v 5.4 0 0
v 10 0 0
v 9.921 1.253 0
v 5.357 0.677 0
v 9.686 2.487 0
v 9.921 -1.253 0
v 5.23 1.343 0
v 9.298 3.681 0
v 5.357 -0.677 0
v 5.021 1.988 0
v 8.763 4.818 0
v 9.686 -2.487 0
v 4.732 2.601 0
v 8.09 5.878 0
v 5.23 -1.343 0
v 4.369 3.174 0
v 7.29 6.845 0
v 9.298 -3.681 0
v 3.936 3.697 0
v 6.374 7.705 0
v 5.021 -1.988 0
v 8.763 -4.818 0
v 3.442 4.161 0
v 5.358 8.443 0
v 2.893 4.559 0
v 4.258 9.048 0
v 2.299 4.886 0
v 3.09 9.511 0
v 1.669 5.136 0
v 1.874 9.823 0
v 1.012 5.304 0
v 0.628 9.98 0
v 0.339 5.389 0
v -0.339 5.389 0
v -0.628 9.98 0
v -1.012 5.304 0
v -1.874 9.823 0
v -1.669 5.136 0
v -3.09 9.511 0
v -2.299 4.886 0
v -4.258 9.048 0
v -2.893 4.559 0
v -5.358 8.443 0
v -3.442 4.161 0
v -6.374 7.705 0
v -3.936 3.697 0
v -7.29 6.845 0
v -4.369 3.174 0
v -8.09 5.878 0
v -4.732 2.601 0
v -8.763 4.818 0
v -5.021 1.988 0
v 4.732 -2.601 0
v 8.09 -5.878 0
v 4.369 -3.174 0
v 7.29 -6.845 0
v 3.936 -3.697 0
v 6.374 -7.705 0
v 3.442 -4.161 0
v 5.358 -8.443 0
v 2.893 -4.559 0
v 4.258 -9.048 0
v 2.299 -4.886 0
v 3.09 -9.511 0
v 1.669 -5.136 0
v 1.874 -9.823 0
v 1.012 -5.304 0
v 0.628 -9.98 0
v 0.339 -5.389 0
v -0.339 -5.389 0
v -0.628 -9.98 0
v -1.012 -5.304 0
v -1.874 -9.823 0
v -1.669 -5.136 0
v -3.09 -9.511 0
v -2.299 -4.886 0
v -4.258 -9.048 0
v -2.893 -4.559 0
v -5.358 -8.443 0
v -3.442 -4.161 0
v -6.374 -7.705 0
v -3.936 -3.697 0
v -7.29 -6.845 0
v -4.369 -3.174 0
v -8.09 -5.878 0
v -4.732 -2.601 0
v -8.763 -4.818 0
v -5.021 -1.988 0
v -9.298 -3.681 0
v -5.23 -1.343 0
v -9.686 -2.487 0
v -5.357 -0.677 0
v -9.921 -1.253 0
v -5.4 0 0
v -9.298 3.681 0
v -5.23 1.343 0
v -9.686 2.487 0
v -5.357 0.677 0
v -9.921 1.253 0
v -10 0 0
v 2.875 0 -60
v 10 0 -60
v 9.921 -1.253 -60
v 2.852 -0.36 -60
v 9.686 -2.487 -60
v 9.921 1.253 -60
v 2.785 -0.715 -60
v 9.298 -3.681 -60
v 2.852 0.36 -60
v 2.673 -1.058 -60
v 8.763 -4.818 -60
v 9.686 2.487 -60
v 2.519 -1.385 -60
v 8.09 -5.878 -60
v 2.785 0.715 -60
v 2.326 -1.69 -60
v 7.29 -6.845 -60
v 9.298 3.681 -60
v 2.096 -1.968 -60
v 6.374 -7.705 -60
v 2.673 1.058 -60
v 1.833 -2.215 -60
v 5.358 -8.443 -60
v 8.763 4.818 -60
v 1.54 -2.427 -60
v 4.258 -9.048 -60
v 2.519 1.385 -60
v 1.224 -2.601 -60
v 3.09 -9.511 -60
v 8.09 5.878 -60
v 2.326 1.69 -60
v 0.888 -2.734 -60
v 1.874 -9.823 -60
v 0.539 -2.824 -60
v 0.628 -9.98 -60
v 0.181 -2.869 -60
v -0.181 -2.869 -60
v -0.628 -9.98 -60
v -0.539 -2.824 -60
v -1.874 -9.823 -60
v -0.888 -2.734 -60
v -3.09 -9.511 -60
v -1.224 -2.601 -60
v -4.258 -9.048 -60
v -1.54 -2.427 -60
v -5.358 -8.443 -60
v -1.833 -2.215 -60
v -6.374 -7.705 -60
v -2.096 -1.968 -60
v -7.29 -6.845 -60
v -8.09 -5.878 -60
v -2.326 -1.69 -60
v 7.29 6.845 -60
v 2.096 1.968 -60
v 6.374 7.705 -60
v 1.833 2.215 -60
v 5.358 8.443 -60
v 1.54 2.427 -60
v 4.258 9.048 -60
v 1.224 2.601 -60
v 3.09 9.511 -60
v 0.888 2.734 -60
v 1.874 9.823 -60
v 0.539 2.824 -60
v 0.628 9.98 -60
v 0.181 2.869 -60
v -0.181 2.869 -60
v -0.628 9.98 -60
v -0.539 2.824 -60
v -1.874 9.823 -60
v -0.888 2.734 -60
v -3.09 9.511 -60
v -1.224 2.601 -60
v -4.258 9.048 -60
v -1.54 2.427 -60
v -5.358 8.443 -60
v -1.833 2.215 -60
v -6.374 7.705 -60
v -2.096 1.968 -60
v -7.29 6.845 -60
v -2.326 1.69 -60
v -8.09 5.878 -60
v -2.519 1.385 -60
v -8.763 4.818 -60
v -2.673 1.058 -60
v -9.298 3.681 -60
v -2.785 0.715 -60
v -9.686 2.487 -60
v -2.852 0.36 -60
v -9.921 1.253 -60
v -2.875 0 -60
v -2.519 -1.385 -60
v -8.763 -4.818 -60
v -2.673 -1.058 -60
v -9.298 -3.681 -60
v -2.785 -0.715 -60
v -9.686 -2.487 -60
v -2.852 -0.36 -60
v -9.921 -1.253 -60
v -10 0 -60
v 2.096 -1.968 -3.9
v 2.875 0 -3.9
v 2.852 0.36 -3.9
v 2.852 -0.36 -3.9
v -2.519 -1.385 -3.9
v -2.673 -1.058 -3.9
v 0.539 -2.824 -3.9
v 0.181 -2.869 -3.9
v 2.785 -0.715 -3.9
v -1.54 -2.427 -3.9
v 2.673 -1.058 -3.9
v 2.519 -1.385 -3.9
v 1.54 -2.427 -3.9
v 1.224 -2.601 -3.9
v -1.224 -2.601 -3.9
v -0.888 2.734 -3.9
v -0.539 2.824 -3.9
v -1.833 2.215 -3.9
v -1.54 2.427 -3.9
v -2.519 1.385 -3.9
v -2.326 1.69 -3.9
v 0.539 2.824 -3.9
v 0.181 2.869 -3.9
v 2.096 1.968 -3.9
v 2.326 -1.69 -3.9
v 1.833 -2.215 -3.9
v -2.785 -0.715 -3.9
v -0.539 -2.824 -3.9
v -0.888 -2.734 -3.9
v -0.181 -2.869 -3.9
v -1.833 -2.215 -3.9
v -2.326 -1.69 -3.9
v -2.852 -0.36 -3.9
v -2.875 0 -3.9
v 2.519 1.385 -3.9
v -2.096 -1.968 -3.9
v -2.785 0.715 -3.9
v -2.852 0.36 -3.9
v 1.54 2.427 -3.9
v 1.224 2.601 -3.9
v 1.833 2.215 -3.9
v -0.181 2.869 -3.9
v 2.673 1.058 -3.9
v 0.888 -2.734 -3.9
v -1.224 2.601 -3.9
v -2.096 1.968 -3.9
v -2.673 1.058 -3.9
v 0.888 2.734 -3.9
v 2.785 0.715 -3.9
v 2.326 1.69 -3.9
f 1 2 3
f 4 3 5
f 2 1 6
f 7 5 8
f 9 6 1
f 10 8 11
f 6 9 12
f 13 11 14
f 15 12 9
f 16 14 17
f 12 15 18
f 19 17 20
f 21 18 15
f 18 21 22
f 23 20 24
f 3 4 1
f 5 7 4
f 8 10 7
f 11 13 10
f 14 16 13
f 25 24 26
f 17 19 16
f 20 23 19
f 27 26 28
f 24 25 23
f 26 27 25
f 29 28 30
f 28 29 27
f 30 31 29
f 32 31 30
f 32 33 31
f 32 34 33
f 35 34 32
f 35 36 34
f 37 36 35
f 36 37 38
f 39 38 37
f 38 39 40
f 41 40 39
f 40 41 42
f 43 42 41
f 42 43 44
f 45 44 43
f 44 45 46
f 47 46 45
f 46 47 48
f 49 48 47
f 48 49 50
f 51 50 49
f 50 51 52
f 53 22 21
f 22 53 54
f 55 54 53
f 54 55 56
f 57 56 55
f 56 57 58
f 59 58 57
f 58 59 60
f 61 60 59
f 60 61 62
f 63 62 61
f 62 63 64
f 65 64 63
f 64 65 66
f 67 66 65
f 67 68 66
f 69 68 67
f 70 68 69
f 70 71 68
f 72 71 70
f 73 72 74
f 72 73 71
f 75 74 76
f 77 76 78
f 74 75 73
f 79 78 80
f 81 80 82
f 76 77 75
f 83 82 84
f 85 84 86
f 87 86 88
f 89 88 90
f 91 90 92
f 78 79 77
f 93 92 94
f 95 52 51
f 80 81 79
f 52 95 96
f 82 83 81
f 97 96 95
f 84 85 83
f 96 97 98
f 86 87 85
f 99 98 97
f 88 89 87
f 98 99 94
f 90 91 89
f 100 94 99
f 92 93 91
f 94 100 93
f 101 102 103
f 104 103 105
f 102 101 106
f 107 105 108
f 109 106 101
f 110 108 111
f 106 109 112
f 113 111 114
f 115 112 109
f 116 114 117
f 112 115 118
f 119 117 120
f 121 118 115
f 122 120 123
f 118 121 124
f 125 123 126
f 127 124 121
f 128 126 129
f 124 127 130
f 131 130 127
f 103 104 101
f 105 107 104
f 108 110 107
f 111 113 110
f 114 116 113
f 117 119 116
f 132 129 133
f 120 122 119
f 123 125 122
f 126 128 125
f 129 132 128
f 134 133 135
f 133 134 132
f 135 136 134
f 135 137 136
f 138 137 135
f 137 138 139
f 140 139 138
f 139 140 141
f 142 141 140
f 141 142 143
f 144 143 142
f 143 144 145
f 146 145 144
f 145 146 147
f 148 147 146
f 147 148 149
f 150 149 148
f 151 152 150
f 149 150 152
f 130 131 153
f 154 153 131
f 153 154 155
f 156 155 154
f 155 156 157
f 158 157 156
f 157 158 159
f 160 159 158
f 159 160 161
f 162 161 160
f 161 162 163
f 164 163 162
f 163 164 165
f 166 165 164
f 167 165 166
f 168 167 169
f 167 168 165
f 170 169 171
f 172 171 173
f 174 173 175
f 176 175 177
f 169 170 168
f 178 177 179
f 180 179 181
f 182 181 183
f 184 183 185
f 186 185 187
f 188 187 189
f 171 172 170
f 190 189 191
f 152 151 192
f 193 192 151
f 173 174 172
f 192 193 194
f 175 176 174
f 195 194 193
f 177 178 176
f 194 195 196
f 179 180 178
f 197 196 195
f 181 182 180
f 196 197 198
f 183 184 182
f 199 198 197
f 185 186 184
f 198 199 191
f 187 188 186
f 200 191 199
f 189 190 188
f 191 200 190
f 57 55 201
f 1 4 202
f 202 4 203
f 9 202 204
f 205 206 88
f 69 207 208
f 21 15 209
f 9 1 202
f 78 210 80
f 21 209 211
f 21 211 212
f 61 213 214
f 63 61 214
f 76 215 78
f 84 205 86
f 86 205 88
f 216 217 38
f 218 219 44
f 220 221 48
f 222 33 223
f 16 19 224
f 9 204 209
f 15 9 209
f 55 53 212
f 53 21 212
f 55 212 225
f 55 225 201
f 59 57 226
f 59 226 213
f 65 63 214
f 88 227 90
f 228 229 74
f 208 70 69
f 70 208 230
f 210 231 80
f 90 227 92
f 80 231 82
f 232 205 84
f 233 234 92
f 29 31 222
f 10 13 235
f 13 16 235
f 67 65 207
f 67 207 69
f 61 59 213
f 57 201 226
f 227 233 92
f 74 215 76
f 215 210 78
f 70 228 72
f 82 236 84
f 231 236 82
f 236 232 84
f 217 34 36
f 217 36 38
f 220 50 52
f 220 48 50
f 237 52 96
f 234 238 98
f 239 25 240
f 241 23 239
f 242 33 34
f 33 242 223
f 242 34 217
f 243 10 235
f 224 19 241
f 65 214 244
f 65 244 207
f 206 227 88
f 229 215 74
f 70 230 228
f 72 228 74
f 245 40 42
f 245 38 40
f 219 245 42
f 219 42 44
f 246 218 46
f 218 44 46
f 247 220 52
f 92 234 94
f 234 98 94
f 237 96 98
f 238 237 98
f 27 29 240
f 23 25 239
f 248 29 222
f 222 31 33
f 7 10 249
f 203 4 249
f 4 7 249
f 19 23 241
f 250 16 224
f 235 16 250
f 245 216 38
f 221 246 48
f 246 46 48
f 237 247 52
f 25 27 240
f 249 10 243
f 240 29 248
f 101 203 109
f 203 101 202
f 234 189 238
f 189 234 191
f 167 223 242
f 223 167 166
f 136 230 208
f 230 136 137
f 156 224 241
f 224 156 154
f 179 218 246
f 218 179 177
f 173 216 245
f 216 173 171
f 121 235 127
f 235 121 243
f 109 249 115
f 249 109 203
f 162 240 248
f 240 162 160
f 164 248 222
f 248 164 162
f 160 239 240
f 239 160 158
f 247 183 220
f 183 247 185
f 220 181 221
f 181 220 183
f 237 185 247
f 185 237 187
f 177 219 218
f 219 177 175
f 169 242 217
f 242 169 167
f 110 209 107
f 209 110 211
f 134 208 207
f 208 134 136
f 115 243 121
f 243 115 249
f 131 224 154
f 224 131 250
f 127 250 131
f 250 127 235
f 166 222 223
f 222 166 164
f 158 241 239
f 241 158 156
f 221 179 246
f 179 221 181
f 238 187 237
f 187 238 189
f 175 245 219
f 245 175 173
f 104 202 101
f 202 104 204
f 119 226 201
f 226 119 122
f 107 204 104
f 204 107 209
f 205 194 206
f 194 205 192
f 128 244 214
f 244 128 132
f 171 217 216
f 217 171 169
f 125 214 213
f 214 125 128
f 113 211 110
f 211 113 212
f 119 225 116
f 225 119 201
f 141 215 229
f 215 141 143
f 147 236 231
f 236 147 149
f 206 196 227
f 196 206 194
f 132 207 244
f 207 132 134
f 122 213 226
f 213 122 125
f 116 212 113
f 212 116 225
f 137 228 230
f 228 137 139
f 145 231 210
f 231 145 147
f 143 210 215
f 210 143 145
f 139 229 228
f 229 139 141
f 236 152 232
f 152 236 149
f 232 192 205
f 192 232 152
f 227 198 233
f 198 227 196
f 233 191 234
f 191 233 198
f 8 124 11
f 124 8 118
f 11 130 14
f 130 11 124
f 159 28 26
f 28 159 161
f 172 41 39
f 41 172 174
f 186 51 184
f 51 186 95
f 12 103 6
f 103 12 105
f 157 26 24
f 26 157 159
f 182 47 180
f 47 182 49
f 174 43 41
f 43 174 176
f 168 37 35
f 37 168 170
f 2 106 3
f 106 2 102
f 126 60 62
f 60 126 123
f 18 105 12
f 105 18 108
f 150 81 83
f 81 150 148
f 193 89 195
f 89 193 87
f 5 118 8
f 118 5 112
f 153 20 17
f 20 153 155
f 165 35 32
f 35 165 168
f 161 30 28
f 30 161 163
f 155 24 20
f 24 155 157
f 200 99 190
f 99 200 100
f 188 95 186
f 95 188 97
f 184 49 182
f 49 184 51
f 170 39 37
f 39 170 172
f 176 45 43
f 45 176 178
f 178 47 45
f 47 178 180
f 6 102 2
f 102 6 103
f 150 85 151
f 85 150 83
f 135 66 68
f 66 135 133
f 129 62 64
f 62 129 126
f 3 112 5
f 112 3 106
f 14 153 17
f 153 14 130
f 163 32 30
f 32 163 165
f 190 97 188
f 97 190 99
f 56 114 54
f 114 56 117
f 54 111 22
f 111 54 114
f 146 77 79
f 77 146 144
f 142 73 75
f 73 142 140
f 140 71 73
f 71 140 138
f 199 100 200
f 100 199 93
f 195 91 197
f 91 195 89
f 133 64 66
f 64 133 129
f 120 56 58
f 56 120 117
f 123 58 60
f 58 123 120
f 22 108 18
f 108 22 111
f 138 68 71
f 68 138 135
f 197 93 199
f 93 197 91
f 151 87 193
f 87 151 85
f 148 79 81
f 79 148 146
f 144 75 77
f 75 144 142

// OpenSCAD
$fn = 50;


difference() {
	union() {
		translate(v = [0, 0, -60.0000000000]) {
			cylinder(h = 60, r = 10.0000000000);
		}
		cylinder(h = 0, r = 16.0000000000);
	}
	union() {
		translate(v = [0, 0, 0]) {
			rotate(a = [0, 0, 0]) {
				difference() {
					union() {
						#translate(v = [0, 0, -60.0000000000]) {
							cylinder(h = 60, r = 2.6000000000);
						}
						#translate(v = [0, 0, -3.9000000000]) {
							cylinder(h = 3.9000000000, r = 10.0000000000, r1 = 2.8750000000, r2 = 5.4000000000);
						}
						#translate(v = [0, 0, -60.0000000000]) {
							cylinder(h = 60, r = 2.8750000000);
						}
						#translate(v = [0, 0, -60.0000000000]) {
							cylinder(h = 60, r = 2.6000000000);
						}
					}
					union();
				}
			}
		}
	}
}
